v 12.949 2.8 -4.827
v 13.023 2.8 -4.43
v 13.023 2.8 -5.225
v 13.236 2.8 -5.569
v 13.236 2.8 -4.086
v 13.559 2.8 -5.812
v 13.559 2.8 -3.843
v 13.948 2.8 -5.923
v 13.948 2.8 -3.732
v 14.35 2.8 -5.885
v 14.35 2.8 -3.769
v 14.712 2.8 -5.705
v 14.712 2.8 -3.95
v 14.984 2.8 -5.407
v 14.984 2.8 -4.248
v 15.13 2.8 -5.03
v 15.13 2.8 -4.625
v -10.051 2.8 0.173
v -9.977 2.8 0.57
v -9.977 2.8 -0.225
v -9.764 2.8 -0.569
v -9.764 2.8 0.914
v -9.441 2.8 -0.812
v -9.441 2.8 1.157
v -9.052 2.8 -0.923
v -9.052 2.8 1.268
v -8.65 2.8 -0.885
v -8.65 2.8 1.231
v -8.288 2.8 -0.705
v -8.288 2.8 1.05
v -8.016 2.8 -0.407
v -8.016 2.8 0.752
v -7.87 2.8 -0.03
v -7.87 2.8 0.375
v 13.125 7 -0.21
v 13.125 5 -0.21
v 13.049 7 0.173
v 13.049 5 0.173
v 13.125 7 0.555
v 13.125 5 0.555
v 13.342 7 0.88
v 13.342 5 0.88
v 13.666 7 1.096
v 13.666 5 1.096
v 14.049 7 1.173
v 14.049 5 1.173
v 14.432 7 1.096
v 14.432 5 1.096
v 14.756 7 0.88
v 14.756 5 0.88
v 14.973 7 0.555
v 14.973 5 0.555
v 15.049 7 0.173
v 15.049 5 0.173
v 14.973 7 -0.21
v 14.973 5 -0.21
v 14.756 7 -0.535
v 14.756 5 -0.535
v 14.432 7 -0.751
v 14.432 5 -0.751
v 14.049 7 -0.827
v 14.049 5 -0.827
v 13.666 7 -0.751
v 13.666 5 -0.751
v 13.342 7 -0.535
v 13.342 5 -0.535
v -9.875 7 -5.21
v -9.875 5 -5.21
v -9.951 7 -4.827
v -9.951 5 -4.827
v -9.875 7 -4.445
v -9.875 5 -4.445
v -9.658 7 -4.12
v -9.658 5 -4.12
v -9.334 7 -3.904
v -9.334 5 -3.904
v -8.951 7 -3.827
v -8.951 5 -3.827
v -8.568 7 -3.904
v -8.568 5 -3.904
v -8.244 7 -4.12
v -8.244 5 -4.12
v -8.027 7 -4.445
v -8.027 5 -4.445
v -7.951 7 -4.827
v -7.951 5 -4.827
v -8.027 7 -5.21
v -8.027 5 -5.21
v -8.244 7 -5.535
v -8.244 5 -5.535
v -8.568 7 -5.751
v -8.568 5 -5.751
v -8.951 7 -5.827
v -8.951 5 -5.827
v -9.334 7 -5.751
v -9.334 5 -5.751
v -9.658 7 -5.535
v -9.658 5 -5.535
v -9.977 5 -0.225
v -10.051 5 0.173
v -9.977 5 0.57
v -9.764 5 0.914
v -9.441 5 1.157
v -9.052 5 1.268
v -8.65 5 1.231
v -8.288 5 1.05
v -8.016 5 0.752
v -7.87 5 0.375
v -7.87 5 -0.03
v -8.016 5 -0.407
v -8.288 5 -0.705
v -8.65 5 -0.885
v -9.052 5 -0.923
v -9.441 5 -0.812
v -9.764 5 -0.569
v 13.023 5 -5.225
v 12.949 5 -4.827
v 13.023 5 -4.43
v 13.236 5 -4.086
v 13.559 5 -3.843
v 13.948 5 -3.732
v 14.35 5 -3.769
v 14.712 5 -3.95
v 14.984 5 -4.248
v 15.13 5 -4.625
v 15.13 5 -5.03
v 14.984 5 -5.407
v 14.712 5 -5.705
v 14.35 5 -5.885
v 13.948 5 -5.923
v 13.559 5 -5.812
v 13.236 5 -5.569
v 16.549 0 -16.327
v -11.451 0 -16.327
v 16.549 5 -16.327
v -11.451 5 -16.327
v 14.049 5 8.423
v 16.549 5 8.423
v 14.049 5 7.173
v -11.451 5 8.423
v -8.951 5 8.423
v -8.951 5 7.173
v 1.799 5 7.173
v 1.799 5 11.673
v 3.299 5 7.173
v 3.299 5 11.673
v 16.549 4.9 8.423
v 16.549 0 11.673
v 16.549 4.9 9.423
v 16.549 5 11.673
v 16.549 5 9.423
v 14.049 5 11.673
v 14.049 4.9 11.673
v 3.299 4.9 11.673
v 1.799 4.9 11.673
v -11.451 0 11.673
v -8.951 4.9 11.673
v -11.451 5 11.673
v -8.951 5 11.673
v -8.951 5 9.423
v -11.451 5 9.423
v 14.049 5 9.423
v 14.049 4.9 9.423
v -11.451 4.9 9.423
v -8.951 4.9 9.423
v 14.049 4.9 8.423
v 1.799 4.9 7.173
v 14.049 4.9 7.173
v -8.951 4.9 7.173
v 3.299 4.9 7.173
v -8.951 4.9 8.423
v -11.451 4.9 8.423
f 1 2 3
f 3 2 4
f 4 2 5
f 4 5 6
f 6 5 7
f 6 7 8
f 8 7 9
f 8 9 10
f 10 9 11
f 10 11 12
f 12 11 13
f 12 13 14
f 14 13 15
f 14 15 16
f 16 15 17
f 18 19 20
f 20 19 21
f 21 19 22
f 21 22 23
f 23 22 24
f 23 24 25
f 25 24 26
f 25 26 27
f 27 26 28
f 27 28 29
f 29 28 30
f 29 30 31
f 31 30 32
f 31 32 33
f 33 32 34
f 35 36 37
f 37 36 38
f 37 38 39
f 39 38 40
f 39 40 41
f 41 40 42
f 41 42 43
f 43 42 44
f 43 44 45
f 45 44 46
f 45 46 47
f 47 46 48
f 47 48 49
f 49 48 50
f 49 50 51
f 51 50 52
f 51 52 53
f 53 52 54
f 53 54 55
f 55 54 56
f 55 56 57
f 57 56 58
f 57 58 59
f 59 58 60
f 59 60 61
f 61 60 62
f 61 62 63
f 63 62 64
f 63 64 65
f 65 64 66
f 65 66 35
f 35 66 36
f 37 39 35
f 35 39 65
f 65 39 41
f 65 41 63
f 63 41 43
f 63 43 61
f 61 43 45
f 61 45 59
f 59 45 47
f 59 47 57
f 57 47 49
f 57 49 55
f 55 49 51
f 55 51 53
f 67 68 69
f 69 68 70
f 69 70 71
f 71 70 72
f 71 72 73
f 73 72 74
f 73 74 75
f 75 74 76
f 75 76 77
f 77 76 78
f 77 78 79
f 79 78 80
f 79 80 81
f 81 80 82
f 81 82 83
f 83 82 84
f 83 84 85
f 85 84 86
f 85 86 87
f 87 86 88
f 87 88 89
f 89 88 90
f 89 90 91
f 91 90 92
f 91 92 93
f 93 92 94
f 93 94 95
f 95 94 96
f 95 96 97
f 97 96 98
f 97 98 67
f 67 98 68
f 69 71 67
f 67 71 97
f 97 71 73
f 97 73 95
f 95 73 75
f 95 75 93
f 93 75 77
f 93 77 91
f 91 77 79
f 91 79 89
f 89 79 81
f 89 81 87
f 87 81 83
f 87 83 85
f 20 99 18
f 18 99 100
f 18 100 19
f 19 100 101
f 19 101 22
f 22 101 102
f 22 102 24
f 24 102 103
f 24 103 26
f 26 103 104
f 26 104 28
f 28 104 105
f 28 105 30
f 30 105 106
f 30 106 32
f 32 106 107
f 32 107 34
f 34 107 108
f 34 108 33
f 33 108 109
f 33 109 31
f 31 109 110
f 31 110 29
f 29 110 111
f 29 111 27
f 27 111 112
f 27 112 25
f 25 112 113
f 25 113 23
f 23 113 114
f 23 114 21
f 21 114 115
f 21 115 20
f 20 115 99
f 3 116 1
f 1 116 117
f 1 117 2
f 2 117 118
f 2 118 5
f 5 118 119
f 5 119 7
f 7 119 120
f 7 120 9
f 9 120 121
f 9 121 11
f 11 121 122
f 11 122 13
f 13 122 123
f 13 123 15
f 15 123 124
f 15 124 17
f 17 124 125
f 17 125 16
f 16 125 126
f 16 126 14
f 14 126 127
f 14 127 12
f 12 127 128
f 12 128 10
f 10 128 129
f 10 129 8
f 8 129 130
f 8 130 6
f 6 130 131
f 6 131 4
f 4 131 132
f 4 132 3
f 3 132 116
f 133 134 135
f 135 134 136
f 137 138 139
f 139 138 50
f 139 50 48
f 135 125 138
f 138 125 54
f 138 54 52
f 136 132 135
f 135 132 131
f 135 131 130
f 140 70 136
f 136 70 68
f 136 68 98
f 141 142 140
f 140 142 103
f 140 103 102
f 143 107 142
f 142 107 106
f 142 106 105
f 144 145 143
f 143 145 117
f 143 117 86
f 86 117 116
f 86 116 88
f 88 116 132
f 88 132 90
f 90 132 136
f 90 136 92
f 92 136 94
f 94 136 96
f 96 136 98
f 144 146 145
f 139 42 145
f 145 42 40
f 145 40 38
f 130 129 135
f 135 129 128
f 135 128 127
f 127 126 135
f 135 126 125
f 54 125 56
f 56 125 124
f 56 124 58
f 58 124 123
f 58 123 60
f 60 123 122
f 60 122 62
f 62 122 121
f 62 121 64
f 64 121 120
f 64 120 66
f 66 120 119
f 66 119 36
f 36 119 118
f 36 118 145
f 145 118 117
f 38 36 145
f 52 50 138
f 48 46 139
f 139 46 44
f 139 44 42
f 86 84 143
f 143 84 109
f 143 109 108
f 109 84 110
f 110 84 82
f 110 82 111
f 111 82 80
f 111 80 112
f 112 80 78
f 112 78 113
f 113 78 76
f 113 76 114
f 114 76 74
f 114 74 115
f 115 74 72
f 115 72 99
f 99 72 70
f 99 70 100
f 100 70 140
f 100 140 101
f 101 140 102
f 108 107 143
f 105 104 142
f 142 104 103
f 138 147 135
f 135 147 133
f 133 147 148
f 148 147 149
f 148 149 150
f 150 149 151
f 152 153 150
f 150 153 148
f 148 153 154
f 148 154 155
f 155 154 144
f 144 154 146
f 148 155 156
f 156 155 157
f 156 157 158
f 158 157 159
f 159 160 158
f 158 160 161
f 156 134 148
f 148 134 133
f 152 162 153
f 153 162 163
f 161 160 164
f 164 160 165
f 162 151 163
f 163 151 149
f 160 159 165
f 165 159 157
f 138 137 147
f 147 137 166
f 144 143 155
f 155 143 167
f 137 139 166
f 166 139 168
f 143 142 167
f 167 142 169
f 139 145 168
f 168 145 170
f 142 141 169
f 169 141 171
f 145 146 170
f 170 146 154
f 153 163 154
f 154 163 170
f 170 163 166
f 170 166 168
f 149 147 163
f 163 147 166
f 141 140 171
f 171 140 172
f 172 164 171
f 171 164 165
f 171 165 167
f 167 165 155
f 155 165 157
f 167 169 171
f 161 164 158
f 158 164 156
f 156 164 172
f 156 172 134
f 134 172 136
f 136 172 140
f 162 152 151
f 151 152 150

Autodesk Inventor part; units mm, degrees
ref_plane "YZ Plane" through (0, 0, 0) normal (1, 0, 0) x (0, 1, 0)
ref_plane "XZ Plane" through (0, 0, 0) normal (0, 1, 0) x (-1, 0, 0)
ref_plane "XY Plane" through (0, 0, 0) normal (0, 0, 1) x (1, 0, 0)
sketch "Sketch1" plane through (0, 0, 0) normal (0, 1, 0) x (-1, 0, 0)
  line L0 (-16.5491, -16.3275) -> (11.4509, -16.3275)
  line L1 (11.4509, 11.6725) -> (-16.5491, 11.6725)
  line L2 (-21.5491, 11.6725) -> (11.4509, 11.6725) construction
  line L3 (-16.5491, 6.6725) -> (-16.5491, -11.3275)
  line L4 (11.4509, 8.6725) -> (11.4509, -11.3275)
  line L5 (11.4509, -7.3275) -> (11.4509, -2.3275)
  line L6 (6.4509, -2.3275) -> (6.4509, -7.3275)
  line L7 (6.4509, -7.3275) -> (11.4509, -7.3275)
  line L8 (11.4509, 2.6725) -> (11.4509, -2.3275)
  line L9 (6.4509, -0.3275) -> (6.4509, 2.6725)
  line L10 (6.4509, 2.6725) -> (11.4509, 2.6725)
  line L11 (11.4509, -7.3275) -> (11.4509, -2.3275)
  line L12 (11.4509, -2.3275) -> (11.4509, 2.6725)
  line L13 (11.4509, 2.6725) -> (11.4509, -2.3275)
  line L14 (11.4509, -2.3275) -> (11.4509, -7.3275)
  line L15 (11.4509, -11.3275) -> (11.4509, -16.3275)
  line L16 (11.4509, 8.6725) -> (11.4509, 11.6725)
  line L17 (-2.5491, -16.3275) -> (-2.5491, 11.6725)
  circle A0 centre (-14.0491, 0.1725) radius 1
  line L18 (-11.5491, 2.6725) -> (-16.5491, 2.6725)
  line L19 (-16.5491, 2.6725) -> (-16.5491, -2.3275)
  line L20 (-16.5491, -2.3275) -> (-16.5491, 2.6725)
  line L21 (-16.5491, 2.6725) -> (-16.5491, -2.3275)
  line L22 (-11.5491, -0.3275) -> (-11.5491, 2.6725)
  circle A1 centre (-14.0491, -4.8275) radius 1.1
  line L23 (-16.5491, -7.3275) -> (-16.5491, -2.3275)
  line L24 (-16.5491, -7.3275) -> (-16.5491, -2.3275)
  line L25 (-16.5491, -2.3275) -> (-16.5491, -7.3275)
  line L26 (-11.5491, -2.3275) -> (-11.5491, -7.3275)
  line L27 (-11.5491, -7.3275) -> (-16.5491, -7.3275)
  line L28 (-16.5491, -11.3275) -> (-16.5491, -16.3275)
  line L29 (-16.5491, 8.6725) -> (-16.5491, -11.3275)
  line L30 (-16.5491, 11.6725) -> (-16.5491, -16.3275)
  line L31 (8.9509, -4.8275) -> (11.4509, -4.8275)
  line L32 (8.9509, 0.1725) -> (11.4509, 0.1725)
  circle A2 centre (8.9509, -4.8275) radius 1
  circle A3 centre (8.9509, 0.1725) radius 1.1
  point P0 (0, 0)
  point P1 (8.9509, -7.3275)
  point P2 (8.9509, 2.6725)
  point P3 (-14.0491, 2.6725)
  point P4 (-14.0491, -7.3275)
  point P5 (11.4509, 2.6725)
  point P6 (-16.5491, 2.6725)
  point P7 (11.4509, -7.3275)
  dimension "d0" = 5
  dimension "d1" = 2.5
  dimension "d2" = 2.5
  dimension "d3" = 2
  dimension "d4" = 2.2
  dimension "d5" = 2.2
  dimension "d6" = 28
  dimension "d7" = 28
  dimension "d14" = 28
extrude "Extrusion1" add sketch "Sketch1" along normal blind 5
extrude "Extrusion2" add sketch "Sketch1" along normal blind 7 contours A2 | A0
extrude "Extrusion3" add sketch "Sketch1" along normal blind 2.8 contours A3 | A1
sketch "Sketch2" plane through (0, 5, 0) normal (0, 1, 0) x (1, 0, 0)
  line L0 (-11.4509, -11.6725) -> (16.5491, -11.6725) projected
  line L1 (2.5491, -11.6725) -> (14.0491, -11.6725)
  line L2 (14.0491, -11.6725) -> (14.0491, -7.1725)
  line L3 (14.0491, -7.1725) -> (-8.9509, -7.1725)
  line L4 (-8.9509, -7.1725) -> (-8.9509, -11.6725)
  line L5 (2.5491, -11.6725) -> (3.2991, -11.6725)
  line L6 (3.2991, -11.6725) -> (1.7991, -11.6725)
  line L7 (1.7991, -11.6725) -> (1.7991, -7.1725)
  line L8 (1.7991, -7.1725) -> (3.2991, -7.1725)
  line L9 (3.2991, -7.1725) -> (3.2991, -11.6725)
  line L10 (3.2991, -11.6725) -> (1.7991, -11.6725)
  line L11 (-11.4509, 16.3275) -> (-11.4509, -11.6725) projected
  line L12 (-8.9509, -9.4225) -> (-11.4509, -9.4225)
  line L13 (-11.4509, -9.4225) -> (-11.4509, -8.4225)
  line L14 (-11.4509, -8.4225) -> (-8.9509, -8.4225)
  line L15 (-8.9509, -8.4225) -> (-8.9509, -9.4225)
  line L16 (14.0491, -9.4225) -> (14.0491, -8.4225)
  line L17 (14.0491, -8.4225) -> (16.5491, -8.4225)
  line L18 (16.5491, -8.4225) -> (16.5491, -9.4225)
  line L19 (16.5491, -9.4225) -> (14.0491, -9.4225)
  point P0 (0, 0)
  dimension "d15" = 11.5
  dimension "d16" = 4.5
  dimension "d17" = 23
  dimension "d18" = 0.75
  dimension "d19" = 1.5
  dimension "d20" = 1
extrude "Extrusion4" cut sketch "Sketch2" against normal blind 0.1 contours L4 L3 L7 L0 | L11 L14 L4 L12 | L9 L3 L2 L0 | L2 L17 L18 L19
properties part number "TracciaSotto"
